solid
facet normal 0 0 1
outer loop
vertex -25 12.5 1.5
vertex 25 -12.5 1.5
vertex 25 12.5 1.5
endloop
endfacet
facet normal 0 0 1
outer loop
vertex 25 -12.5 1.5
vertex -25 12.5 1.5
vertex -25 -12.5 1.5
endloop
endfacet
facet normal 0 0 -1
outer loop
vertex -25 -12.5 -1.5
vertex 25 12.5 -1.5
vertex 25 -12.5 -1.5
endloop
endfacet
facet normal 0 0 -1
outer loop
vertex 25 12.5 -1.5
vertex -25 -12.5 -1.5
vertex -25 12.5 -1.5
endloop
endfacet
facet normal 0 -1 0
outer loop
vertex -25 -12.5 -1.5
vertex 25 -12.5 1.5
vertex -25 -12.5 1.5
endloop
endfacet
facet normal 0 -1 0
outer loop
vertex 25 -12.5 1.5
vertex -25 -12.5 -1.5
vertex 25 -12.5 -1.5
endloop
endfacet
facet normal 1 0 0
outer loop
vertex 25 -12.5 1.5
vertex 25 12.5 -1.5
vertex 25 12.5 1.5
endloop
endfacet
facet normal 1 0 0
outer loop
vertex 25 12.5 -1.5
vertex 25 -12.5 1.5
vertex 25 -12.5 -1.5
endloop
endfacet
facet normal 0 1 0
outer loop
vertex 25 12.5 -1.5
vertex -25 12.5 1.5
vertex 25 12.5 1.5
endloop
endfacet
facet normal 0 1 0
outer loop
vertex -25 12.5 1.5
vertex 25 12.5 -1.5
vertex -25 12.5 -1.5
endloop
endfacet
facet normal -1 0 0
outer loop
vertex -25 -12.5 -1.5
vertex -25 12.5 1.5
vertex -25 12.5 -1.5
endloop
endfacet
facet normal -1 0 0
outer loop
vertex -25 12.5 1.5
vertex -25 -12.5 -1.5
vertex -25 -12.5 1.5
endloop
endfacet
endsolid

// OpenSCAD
// Define dimensions for the rectangular block
block_length = 50;  // Length of the block
block_width = 25;   // Width of the block
block_thickness = 3; // Adjusted thickness of the block to match the original model

// Generate the rectangular block
module rectangular_block() {
    cube([block_length, block_width, block_thickness], center = true);
}

// Assemble the model
translate([0, 0, 0]) // Corrected position to align with the original model
rectangular_block();
